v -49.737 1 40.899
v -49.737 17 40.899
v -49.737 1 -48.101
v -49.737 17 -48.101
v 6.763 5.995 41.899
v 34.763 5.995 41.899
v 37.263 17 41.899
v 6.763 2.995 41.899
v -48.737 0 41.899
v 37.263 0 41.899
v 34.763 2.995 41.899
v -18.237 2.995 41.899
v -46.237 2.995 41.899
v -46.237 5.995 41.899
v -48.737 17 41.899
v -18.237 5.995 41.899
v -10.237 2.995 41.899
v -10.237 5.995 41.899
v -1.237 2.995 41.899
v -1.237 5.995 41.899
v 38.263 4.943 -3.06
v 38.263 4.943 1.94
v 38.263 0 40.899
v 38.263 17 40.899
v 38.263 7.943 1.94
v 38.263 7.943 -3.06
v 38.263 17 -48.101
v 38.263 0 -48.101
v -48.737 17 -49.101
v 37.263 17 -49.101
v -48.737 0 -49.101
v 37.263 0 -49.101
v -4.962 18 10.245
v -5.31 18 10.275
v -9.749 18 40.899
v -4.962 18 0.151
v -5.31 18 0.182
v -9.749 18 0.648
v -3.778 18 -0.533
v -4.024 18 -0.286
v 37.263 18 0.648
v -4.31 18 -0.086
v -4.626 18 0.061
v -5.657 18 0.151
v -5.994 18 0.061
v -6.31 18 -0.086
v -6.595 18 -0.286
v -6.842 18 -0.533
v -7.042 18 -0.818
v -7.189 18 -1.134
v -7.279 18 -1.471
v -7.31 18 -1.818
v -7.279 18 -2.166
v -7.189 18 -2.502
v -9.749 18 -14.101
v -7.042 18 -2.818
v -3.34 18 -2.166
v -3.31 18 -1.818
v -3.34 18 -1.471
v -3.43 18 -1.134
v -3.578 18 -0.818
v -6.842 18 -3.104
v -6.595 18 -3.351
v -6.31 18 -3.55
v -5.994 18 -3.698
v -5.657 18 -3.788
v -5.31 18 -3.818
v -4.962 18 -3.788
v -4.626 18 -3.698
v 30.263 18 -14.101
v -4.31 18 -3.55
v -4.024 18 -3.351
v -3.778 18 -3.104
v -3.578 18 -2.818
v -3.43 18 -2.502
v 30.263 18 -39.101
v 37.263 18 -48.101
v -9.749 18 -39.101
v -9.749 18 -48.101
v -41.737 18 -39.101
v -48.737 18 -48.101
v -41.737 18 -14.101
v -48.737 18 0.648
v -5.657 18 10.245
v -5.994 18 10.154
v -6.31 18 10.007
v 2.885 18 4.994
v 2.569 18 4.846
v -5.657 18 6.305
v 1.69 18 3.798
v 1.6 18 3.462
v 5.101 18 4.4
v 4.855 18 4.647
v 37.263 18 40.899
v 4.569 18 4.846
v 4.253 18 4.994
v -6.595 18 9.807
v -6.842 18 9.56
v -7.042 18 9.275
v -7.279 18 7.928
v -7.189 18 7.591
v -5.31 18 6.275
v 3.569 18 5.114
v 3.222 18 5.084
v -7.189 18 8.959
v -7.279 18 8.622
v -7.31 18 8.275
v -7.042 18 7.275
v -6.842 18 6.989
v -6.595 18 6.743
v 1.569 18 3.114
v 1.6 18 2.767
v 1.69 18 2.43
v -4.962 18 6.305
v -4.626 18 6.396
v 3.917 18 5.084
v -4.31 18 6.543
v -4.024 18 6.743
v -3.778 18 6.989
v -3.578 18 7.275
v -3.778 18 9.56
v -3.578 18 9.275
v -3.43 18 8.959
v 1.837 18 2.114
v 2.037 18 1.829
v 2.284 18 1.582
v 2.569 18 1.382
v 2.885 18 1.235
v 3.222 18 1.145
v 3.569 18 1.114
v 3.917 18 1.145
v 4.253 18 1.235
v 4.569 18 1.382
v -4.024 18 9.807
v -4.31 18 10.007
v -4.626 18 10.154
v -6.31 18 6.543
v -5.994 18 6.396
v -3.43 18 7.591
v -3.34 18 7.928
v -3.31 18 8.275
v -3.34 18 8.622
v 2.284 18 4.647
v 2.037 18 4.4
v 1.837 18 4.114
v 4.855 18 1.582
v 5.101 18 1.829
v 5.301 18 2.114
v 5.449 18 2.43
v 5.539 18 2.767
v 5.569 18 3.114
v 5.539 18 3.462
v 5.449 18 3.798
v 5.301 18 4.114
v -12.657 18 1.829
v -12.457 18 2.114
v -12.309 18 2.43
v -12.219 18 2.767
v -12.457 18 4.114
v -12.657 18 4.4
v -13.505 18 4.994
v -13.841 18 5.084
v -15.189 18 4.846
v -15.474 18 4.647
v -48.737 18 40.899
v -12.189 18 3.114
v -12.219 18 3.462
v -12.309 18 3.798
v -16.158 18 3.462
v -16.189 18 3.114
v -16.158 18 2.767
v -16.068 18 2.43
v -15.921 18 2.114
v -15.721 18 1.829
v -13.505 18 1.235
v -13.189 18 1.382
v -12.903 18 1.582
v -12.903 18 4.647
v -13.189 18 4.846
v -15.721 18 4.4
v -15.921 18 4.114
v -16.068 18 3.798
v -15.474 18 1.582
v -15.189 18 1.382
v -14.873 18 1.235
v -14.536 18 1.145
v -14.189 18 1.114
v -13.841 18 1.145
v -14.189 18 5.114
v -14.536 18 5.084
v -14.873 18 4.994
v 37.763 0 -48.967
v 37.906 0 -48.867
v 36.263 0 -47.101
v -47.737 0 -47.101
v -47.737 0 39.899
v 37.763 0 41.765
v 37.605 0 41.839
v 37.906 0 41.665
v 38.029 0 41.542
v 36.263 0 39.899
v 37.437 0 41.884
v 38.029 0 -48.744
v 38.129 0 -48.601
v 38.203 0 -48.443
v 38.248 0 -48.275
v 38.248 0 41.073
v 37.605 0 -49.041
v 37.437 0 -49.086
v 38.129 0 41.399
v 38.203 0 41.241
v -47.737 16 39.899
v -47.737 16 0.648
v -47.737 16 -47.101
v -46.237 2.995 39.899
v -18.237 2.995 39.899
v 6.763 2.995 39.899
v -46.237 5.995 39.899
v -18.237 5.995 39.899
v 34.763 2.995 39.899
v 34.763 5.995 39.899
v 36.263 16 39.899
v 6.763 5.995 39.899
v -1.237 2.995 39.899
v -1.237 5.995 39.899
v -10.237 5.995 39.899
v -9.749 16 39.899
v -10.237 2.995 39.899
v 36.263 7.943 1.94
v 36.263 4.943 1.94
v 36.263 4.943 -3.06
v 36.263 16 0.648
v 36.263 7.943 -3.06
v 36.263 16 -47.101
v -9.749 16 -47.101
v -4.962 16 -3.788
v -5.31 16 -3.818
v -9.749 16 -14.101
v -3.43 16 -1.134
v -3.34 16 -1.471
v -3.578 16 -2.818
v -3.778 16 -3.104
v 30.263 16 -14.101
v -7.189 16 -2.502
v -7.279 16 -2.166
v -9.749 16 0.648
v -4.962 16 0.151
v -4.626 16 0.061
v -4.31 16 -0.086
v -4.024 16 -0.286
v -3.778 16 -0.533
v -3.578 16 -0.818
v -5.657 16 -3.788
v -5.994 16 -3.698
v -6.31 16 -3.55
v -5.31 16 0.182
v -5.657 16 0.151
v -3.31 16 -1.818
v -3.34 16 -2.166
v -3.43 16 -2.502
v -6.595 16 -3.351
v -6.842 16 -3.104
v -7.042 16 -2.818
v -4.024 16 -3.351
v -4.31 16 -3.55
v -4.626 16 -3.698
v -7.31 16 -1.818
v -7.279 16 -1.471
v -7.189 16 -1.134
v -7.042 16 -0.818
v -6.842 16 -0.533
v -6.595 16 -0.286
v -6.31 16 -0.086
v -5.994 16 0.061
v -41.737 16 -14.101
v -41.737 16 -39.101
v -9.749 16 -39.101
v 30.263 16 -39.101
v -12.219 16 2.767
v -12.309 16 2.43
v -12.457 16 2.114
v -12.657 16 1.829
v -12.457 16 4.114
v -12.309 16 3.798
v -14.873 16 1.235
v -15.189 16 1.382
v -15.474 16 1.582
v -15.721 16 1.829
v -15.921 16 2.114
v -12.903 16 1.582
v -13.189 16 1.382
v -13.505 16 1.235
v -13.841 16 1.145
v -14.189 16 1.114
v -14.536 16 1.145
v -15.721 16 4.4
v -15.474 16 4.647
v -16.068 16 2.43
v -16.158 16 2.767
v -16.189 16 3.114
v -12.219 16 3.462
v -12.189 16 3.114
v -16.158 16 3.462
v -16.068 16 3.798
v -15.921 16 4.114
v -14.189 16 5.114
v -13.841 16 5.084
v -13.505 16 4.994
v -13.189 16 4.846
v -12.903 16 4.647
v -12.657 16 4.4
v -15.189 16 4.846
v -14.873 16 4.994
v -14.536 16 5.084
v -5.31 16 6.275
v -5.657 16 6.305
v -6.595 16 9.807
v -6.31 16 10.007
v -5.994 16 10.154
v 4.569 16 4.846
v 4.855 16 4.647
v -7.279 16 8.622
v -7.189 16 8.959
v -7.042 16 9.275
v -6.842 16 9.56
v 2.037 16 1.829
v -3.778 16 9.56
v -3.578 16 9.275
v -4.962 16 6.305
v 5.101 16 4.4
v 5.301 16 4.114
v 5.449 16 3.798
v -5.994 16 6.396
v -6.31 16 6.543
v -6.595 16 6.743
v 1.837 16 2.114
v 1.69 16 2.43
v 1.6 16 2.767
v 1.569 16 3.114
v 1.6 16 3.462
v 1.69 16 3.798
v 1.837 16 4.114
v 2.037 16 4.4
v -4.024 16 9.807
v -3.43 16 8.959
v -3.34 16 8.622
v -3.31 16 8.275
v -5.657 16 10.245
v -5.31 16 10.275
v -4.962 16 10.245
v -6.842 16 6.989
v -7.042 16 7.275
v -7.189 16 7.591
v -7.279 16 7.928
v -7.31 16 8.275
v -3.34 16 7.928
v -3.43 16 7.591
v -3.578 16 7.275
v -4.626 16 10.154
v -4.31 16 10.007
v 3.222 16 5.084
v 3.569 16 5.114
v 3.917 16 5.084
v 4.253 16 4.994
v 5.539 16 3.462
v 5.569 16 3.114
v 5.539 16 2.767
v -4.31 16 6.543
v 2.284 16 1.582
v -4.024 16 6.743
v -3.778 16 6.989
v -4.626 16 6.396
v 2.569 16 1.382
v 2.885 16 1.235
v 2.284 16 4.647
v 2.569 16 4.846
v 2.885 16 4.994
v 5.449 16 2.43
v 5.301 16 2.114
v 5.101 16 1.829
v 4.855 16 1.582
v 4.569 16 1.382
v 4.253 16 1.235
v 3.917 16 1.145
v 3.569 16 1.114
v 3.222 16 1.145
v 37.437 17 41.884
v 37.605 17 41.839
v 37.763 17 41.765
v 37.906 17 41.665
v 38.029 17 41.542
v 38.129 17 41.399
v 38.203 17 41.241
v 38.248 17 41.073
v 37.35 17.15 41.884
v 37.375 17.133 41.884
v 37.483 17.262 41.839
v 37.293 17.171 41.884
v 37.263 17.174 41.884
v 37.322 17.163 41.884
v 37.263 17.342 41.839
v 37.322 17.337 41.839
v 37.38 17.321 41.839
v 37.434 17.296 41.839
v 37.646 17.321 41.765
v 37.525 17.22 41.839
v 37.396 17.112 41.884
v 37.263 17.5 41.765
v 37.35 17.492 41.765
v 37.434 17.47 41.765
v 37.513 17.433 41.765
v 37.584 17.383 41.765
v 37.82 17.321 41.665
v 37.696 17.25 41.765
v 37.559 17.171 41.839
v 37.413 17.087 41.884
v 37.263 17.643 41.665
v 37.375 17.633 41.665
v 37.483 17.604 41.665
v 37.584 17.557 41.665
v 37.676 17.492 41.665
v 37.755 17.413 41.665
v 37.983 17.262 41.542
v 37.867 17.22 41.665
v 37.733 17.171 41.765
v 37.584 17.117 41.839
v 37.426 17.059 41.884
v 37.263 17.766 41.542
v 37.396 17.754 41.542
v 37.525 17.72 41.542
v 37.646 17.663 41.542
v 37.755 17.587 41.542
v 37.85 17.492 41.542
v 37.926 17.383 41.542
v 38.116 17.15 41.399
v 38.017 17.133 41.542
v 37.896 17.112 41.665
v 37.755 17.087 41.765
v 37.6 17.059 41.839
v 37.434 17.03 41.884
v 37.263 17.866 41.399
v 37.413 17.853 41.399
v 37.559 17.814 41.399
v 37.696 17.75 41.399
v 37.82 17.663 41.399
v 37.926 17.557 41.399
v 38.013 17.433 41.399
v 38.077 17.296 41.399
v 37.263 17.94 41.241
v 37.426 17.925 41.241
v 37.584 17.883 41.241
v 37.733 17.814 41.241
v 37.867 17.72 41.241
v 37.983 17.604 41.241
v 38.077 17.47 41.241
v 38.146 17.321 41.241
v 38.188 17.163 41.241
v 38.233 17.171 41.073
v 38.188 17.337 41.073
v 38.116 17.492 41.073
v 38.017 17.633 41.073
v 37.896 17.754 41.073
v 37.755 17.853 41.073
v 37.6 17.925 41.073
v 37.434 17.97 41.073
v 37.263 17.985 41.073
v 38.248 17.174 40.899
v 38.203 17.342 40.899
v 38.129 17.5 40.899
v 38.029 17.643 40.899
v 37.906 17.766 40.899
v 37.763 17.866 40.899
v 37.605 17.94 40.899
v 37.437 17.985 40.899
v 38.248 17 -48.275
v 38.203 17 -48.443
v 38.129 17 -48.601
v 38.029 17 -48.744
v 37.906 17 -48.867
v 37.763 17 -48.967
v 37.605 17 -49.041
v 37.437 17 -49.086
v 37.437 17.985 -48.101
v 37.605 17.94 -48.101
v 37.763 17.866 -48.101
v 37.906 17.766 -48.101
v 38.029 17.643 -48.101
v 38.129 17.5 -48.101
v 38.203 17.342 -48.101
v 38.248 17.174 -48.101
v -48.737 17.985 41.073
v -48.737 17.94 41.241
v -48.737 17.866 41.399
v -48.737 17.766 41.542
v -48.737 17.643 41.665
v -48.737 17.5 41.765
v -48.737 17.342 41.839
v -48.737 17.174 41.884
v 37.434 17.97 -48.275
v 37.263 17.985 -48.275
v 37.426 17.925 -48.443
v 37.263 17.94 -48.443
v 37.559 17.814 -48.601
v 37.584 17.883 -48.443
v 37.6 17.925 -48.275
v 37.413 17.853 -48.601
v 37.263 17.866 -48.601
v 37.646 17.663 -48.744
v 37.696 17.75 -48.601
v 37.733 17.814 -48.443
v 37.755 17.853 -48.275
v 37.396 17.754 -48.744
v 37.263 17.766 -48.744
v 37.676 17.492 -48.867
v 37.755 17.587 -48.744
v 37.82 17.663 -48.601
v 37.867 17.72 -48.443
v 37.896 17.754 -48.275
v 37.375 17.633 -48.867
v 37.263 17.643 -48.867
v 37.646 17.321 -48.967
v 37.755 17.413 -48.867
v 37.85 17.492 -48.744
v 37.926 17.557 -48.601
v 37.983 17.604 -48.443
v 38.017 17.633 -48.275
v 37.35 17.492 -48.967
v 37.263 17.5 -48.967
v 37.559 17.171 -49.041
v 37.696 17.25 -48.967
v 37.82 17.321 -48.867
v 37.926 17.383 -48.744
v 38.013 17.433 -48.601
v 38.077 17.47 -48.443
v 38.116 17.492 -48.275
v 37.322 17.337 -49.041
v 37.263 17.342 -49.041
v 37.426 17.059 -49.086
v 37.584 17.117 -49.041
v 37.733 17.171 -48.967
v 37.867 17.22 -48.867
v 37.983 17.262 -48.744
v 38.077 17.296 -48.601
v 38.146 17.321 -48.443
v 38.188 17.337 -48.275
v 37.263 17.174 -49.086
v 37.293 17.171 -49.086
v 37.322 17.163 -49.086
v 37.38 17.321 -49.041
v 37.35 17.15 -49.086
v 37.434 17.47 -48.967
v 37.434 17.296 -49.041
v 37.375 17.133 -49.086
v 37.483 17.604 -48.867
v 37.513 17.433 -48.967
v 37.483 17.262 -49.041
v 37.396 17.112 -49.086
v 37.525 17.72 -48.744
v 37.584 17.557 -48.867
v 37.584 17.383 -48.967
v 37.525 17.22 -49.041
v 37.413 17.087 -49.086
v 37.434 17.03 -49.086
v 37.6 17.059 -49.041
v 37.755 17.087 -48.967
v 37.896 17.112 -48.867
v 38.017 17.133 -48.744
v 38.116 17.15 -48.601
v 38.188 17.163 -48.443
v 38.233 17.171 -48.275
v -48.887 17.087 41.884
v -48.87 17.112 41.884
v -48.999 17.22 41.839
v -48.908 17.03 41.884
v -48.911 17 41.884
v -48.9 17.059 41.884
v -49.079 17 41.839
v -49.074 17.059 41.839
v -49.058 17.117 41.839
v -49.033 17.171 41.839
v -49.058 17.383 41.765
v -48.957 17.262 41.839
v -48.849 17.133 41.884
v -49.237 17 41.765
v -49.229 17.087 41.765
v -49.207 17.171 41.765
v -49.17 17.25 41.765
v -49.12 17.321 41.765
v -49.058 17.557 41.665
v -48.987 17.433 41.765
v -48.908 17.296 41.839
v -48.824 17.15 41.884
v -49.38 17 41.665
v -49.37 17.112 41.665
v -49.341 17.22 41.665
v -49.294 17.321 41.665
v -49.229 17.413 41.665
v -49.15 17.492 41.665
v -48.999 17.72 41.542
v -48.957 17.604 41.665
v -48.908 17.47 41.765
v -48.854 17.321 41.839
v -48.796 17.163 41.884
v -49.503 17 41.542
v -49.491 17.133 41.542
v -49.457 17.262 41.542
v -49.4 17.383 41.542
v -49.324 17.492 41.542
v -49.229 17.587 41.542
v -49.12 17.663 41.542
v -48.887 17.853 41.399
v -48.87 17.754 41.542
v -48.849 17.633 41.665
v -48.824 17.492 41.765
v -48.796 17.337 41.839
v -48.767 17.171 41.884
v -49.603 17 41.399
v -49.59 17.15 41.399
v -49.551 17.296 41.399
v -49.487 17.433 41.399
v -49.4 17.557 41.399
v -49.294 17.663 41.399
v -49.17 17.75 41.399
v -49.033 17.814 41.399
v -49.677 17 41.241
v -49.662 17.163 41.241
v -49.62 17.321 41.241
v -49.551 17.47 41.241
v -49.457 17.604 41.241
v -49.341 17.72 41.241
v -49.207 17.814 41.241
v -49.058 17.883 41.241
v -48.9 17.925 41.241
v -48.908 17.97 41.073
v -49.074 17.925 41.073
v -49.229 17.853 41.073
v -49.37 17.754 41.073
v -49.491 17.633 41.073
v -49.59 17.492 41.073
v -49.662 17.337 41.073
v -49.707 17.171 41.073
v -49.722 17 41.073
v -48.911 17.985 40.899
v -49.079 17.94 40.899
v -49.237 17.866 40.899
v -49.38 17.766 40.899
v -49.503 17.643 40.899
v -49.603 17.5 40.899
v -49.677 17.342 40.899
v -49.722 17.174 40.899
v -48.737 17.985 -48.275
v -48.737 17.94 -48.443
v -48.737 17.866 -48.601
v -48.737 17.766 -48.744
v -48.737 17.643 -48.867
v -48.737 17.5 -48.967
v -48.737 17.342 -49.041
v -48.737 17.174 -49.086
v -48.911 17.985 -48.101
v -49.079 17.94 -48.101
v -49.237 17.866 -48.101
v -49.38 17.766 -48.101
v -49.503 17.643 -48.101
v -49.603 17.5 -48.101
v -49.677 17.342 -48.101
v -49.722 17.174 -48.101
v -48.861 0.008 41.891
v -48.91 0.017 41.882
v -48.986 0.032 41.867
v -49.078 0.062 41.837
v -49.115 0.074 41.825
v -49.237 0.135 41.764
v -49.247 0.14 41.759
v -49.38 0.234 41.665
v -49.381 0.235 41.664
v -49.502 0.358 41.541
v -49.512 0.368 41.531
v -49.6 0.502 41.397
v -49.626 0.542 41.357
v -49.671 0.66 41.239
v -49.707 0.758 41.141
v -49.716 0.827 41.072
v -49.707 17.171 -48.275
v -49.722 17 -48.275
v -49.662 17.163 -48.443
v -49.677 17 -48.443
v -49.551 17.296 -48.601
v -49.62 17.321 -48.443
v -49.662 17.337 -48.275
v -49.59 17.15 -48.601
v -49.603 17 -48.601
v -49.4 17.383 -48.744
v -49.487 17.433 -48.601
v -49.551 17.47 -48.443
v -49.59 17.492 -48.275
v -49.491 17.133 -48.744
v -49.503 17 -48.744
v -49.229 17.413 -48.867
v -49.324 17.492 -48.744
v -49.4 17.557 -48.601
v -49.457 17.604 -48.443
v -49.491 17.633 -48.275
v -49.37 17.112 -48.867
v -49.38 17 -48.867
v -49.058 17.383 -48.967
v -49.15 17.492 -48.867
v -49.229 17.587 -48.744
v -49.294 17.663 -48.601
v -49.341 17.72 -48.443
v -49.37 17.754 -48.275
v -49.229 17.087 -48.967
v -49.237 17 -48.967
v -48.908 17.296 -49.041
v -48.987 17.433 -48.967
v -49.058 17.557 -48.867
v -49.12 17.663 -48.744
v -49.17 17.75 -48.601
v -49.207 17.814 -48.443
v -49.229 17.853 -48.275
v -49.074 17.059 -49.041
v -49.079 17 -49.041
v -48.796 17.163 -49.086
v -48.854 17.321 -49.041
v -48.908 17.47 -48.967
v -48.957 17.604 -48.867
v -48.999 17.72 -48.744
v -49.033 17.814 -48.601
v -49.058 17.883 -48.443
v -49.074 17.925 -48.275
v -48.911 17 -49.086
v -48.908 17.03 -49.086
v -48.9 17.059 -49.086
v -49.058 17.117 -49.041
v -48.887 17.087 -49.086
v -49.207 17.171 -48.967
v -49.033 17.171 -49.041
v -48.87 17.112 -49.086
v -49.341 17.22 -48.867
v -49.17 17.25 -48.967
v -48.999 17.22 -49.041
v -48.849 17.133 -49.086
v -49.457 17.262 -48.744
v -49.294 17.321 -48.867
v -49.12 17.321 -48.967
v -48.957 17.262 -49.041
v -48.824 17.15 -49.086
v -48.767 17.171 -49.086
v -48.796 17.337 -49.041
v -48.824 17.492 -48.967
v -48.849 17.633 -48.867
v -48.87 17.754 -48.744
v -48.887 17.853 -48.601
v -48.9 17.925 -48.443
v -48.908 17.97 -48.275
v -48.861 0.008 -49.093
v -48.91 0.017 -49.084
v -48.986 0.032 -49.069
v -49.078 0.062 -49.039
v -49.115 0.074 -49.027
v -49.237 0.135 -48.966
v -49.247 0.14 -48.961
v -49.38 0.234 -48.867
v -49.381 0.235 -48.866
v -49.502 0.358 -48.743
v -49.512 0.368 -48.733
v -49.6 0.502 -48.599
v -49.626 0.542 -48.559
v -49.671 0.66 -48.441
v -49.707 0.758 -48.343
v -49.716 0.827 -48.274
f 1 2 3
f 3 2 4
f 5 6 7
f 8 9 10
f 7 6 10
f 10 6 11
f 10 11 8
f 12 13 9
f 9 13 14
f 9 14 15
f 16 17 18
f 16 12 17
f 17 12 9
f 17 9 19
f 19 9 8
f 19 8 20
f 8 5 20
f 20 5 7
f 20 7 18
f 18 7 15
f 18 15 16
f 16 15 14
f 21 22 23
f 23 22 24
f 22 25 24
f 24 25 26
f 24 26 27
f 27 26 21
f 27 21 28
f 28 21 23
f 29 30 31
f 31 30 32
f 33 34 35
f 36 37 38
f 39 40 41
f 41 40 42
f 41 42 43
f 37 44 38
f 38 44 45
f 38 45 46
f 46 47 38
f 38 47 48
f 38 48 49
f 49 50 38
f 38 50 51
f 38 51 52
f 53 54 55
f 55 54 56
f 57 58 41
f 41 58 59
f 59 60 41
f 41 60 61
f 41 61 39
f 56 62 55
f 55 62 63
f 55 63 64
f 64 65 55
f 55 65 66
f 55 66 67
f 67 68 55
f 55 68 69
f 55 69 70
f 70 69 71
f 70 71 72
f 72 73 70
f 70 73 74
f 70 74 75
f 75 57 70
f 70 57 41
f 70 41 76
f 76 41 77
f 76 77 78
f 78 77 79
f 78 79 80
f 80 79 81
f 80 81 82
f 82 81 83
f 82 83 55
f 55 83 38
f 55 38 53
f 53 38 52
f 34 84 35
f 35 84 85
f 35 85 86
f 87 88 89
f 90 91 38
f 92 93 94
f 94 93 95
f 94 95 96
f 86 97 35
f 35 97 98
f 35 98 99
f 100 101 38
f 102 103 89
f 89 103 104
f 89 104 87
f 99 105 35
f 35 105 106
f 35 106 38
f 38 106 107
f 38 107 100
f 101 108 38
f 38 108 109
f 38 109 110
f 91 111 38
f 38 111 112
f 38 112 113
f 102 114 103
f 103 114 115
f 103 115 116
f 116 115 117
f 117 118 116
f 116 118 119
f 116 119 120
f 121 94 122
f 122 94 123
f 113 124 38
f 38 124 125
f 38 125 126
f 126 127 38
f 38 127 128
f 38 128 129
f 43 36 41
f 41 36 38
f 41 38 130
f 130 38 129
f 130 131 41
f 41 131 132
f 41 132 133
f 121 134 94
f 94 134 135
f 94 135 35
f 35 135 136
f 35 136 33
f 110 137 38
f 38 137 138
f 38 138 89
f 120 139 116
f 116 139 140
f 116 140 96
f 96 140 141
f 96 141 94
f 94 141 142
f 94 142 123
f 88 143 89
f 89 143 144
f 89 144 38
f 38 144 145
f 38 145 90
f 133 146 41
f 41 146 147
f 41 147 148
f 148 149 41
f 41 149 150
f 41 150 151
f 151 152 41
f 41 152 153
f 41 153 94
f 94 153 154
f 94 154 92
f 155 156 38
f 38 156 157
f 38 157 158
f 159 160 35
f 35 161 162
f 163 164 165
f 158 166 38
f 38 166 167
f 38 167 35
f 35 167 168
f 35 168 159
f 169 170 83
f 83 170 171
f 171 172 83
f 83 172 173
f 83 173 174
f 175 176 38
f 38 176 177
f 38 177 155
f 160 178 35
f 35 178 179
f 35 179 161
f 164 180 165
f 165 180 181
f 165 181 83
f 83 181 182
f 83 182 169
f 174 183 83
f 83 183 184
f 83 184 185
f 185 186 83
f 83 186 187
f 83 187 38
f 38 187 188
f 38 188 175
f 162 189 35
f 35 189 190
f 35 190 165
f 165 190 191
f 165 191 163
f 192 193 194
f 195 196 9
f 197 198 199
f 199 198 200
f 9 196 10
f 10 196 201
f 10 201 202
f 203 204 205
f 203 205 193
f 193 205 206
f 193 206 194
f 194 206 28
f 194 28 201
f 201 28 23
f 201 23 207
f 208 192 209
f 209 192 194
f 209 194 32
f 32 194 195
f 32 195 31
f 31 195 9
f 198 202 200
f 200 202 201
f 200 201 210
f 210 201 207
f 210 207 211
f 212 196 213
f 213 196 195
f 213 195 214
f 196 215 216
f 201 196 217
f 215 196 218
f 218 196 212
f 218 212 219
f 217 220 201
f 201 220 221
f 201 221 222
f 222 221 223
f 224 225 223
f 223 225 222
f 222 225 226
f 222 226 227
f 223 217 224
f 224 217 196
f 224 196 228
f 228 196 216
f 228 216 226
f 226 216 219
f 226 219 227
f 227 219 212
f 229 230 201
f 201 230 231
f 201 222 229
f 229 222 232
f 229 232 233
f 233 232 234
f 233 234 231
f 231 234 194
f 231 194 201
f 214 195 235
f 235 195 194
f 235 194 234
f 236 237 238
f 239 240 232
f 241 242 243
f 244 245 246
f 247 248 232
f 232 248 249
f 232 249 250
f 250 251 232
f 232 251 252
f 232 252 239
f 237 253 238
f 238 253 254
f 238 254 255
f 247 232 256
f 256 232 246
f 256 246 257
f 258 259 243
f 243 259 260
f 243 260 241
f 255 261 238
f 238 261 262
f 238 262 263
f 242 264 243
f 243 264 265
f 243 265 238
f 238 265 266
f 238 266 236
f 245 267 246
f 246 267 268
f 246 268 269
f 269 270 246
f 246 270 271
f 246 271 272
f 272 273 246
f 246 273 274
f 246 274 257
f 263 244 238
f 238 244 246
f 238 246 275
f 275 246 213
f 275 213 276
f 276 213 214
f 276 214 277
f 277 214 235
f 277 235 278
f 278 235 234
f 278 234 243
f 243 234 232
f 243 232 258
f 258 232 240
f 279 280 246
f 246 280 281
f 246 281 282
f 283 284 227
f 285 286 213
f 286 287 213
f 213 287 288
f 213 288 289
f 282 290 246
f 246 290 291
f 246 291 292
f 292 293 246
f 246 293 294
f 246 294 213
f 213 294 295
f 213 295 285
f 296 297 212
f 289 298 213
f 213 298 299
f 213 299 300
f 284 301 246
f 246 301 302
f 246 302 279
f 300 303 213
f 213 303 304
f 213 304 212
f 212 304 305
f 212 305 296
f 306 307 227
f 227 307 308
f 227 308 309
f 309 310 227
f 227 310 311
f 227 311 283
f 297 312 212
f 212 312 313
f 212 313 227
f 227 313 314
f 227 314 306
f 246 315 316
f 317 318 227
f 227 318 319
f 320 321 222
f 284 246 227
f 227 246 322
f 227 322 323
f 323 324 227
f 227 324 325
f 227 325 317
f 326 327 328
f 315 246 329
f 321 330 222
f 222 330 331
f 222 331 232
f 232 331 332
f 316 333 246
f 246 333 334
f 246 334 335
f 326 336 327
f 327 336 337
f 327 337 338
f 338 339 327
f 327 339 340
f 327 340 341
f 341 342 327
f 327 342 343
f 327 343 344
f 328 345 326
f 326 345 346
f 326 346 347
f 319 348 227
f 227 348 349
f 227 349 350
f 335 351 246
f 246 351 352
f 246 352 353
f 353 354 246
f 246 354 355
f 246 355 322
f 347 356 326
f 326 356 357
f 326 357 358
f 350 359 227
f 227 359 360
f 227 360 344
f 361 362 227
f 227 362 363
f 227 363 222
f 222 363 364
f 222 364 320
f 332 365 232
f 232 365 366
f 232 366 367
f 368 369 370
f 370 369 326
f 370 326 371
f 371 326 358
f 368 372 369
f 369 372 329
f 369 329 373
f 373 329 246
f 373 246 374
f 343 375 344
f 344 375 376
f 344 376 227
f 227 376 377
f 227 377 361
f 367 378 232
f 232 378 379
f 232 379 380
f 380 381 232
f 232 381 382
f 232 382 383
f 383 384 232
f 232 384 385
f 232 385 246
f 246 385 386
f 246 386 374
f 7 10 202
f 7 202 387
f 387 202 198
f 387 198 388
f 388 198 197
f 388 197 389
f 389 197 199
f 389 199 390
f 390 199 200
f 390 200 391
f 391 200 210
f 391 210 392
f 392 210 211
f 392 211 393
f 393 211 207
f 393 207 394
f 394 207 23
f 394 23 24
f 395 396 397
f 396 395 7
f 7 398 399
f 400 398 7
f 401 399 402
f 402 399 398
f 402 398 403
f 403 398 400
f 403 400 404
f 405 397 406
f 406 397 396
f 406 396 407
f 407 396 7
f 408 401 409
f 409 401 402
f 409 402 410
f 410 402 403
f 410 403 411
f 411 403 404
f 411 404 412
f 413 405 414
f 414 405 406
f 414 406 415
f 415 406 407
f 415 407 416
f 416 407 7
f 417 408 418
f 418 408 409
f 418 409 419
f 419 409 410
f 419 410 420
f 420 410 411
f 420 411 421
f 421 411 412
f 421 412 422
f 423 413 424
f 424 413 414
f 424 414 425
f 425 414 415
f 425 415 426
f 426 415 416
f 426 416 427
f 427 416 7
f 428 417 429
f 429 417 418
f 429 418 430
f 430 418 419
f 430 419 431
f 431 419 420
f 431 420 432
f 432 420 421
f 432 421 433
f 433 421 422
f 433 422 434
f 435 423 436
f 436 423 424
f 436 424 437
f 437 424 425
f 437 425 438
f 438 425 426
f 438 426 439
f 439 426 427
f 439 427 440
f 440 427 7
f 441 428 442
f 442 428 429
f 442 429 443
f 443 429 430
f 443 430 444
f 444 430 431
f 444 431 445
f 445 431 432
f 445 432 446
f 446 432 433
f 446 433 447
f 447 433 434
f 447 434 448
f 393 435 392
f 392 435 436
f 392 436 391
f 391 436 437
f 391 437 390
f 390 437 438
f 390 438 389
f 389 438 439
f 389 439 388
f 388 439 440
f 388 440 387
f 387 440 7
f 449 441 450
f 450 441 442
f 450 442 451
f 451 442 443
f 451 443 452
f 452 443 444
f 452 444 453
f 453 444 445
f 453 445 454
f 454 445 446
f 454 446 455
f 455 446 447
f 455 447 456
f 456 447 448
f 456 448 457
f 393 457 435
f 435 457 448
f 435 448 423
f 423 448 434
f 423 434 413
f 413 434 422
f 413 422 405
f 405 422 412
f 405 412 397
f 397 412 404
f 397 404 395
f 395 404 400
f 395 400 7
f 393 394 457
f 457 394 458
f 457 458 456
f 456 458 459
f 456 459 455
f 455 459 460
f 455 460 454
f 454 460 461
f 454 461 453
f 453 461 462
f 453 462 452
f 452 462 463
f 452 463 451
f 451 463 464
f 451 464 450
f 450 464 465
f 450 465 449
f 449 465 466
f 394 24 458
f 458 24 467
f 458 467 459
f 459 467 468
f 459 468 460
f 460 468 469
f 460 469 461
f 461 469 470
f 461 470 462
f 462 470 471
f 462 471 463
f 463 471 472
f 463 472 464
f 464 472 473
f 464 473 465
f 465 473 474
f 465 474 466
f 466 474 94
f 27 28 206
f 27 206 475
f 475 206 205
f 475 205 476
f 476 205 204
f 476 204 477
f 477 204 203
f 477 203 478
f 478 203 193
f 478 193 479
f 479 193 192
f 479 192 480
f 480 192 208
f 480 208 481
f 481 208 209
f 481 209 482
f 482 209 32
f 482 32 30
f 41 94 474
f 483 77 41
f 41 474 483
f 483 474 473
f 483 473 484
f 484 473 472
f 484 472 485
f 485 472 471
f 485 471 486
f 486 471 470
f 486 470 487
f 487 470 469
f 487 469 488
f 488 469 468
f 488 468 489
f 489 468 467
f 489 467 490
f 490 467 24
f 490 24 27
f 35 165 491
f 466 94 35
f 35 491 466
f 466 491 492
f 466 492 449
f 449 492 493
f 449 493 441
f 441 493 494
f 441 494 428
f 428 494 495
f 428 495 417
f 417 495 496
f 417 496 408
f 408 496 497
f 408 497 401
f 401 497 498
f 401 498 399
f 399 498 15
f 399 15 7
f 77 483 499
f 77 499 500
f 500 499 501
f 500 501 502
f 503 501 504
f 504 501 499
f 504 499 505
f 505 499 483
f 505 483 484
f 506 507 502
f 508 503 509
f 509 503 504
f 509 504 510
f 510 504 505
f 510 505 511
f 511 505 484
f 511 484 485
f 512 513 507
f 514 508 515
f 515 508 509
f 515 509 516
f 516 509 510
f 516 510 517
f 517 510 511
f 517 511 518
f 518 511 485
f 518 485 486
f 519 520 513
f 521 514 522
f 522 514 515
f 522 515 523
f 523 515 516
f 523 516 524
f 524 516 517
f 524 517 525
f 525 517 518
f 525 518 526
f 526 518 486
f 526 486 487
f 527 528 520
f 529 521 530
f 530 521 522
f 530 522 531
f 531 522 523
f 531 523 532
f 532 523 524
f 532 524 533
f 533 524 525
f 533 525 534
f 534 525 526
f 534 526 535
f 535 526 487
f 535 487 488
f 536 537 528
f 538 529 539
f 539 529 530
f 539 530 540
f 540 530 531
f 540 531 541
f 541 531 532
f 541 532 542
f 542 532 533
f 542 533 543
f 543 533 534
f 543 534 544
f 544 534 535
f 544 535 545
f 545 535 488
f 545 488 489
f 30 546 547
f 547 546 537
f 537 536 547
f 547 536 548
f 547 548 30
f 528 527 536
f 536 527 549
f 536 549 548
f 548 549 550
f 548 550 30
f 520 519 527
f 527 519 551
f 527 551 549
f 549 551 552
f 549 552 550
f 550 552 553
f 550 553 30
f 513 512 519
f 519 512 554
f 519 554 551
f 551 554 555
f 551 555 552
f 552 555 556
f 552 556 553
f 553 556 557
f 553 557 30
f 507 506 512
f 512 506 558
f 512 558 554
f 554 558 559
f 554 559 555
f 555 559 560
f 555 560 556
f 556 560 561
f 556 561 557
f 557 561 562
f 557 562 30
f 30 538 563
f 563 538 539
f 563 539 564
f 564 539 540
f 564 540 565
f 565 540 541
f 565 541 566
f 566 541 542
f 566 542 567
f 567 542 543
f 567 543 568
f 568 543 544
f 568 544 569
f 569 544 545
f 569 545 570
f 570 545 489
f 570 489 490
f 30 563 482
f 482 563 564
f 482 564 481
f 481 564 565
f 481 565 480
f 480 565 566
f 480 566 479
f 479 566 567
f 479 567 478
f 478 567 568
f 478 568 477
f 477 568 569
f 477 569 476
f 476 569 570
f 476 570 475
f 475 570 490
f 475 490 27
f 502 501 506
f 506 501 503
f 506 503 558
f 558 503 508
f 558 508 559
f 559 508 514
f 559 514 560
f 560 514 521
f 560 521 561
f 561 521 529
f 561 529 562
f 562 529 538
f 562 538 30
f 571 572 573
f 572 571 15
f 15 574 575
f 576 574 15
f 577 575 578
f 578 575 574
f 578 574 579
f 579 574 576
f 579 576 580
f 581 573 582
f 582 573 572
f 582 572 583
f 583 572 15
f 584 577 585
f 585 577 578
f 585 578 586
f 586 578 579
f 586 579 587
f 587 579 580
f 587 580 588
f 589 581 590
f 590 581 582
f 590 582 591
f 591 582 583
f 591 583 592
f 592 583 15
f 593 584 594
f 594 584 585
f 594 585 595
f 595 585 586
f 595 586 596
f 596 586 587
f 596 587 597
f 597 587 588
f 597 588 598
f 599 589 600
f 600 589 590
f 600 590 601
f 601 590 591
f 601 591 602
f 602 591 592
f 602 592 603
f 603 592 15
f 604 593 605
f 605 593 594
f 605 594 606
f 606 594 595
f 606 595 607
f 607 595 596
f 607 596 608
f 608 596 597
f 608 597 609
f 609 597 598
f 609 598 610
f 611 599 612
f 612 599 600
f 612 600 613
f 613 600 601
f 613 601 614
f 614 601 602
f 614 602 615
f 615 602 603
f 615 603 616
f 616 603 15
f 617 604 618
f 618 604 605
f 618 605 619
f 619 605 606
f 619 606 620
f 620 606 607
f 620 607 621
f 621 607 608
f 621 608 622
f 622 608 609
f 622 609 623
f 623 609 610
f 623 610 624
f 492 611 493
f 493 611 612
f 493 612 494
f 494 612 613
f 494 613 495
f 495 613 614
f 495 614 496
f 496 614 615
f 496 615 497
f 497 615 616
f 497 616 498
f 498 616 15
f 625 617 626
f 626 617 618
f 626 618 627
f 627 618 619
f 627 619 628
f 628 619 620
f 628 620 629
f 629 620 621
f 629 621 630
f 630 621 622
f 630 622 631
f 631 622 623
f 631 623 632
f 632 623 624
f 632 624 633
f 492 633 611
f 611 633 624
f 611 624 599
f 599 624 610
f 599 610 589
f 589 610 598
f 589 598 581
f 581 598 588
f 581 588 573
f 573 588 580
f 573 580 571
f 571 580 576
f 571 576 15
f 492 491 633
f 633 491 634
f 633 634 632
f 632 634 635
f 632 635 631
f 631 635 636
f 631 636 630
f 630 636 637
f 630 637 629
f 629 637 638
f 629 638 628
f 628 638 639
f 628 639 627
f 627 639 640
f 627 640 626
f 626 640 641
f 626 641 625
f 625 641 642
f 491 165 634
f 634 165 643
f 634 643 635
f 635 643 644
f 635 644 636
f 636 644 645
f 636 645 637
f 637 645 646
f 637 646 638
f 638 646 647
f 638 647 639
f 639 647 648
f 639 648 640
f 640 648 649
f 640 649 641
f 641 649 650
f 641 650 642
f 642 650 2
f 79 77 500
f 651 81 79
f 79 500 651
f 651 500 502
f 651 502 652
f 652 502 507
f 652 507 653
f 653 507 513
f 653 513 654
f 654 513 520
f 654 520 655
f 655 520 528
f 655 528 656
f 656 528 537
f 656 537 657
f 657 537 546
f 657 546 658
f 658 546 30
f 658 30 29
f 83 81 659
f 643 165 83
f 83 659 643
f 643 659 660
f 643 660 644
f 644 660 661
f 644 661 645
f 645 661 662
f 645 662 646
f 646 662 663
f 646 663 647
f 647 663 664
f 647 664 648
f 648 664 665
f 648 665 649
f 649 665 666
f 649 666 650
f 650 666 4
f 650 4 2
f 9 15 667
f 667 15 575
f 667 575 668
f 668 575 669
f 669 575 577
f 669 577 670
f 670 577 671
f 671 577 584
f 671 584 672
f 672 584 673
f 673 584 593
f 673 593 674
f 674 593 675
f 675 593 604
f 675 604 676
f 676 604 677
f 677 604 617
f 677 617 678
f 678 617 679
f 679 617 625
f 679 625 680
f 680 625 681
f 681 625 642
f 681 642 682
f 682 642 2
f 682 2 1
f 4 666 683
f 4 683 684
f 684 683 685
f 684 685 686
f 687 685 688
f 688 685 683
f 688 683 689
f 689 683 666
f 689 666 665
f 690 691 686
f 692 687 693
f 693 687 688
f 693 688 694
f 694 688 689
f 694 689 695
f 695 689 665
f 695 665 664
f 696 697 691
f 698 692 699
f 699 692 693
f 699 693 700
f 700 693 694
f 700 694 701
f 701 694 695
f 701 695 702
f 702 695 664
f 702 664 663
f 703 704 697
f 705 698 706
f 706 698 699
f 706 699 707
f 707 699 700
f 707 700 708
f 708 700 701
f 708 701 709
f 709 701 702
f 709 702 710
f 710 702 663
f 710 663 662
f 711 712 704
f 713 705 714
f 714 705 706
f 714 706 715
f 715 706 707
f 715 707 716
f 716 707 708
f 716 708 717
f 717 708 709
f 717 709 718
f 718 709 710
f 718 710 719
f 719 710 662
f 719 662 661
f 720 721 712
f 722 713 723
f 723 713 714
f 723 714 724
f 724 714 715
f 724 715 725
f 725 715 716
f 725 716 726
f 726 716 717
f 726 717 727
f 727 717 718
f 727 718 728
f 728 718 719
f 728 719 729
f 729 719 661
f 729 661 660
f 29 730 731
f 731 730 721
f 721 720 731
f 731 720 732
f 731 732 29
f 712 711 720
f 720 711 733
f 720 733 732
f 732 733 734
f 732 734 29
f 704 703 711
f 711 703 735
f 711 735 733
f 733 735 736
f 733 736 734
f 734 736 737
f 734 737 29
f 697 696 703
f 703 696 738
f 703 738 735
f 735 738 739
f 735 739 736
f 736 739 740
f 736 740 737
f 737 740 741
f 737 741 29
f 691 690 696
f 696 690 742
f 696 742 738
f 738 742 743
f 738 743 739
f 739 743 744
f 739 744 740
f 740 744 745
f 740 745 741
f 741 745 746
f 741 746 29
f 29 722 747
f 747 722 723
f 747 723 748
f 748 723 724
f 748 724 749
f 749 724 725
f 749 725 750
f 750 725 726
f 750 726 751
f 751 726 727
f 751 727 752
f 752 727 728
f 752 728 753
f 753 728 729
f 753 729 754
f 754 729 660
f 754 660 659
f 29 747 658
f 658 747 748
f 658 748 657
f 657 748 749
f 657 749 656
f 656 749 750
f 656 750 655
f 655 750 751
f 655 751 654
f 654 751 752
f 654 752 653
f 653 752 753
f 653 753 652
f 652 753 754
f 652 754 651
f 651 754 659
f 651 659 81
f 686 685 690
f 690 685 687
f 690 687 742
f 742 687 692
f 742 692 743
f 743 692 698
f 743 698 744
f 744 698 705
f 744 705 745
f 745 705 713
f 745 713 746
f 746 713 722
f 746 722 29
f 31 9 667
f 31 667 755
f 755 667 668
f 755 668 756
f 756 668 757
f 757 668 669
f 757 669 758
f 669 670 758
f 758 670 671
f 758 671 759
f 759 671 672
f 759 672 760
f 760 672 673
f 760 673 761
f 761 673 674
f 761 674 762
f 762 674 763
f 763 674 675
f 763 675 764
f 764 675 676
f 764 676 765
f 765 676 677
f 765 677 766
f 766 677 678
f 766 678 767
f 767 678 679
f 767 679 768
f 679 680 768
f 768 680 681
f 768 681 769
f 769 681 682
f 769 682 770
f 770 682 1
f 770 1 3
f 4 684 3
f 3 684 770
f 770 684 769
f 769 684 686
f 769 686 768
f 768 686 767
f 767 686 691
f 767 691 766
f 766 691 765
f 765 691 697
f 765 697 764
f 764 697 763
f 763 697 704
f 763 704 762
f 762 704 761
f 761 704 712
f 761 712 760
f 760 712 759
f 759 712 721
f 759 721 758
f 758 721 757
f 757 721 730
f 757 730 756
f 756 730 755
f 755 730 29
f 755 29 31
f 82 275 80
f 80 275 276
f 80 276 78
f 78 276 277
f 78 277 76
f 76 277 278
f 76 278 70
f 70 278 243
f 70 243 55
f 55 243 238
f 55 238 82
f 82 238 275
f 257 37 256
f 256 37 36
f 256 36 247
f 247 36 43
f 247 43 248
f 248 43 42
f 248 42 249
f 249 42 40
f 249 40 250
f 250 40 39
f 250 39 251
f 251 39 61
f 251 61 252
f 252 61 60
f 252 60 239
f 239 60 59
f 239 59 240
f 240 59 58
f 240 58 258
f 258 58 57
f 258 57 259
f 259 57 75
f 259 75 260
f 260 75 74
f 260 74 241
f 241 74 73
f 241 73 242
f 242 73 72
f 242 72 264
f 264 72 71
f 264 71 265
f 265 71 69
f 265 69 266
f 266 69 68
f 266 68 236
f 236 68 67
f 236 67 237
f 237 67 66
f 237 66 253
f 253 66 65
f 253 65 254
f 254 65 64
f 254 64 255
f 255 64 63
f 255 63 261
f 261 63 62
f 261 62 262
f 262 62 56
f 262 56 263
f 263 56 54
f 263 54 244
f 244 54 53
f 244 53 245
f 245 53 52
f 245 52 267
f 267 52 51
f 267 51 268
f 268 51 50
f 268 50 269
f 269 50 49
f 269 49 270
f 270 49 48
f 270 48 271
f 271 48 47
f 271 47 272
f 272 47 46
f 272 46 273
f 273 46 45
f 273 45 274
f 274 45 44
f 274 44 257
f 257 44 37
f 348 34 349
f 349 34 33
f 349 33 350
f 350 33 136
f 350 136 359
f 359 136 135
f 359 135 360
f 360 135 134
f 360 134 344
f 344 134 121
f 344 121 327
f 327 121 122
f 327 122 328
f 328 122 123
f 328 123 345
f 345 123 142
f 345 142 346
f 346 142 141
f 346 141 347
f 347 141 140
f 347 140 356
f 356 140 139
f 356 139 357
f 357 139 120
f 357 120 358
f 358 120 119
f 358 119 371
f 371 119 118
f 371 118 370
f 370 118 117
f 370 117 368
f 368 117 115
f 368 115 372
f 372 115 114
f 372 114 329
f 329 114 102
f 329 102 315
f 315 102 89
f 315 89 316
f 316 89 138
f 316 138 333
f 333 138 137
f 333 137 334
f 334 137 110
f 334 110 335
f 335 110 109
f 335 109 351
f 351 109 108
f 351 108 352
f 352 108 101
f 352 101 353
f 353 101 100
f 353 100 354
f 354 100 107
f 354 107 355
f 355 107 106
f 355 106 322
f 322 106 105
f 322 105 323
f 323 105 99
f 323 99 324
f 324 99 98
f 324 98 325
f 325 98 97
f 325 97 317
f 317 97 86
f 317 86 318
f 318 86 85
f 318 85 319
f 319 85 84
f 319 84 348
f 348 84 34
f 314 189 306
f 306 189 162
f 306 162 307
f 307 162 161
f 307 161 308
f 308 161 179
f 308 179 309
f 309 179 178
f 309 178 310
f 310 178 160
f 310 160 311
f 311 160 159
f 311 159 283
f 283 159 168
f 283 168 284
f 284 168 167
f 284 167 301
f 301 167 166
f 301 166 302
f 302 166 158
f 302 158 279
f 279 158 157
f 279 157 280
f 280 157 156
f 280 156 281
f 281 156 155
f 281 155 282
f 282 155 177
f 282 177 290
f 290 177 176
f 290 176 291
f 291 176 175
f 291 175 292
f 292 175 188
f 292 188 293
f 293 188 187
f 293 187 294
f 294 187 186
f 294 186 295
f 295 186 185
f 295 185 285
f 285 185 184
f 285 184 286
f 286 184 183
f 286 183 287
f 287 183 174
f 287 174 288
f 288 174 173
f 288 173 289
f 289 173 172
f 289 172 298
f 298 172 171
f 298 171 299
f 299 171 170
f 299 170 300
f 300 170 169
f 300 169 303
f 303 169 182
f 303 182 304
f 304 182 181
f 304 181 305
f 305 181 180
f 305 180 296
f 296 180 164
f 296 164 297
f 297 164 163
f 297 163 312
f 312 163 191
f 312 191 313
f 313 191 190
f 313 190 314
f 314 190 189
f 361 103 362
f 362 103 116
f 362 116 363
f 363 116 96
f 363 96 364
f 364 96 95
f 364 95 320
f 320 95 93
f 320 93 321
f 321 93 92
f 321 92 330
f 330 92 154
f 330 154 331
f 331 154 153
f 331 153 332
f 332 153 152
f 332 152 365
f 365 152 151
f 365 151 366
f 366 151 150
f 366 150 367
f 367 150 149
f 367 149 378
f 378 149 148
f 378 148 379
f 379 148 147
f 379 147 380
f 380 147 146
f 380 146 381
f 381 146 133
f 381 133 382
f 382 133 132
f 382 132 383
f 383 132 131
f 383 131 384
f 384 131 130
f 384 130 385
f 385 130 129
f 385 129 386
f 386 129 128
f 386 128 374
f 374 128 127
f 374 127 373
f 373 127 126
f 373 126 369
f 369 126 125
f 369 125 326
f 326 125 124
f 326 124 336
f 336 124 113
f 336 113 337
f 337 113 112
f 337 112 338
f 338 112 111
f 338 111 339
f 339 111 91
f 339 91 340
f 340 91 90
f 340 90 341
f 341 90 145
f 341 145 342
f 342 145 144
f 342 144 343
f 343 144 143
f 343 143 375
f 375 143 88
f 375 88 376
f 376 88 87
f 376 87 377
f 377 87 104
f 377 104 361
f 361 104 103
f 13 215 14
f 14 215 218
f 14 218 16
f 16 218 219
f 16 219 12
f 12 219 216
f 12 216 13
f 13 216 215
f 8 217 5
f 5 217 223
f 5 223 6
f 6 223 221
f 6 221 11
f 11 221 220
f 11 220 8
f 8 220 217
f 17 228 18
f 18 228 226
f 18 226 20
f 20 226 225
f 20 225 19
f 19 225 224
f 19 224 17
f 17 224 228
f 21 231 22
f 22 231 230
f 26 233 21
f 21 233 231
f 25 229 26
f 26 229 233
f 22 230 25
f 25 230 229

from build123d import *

# Parameters (mm, degrees)
SKETCH1_W           = 88
SKETCH1_H           = 91
BOSS_EXTRUDE1_DEPTH = 18
SHELL1_T            = -2
FILLET1_R           = 1
SKETCH2_R           = 2
SKETCH2_W           = 72
SKETCH2_H           = 25
CUT_EXTRUDE1_DEPTH  = 18
CUT_EXTRUDE2_REACH  = 107.256
SKETCH3_W           = 28
SKETCH3_H           = 3
SKETCH3_W_2         = 9
CUT_EXTRUDE3_REACH  = 104.367
SKETCH4_W           = 5
SKETCH4_H           = 3


with BuildPart() as part:
    # Sketch1 → Boss-Extrude1 (new body)
    with BuildSketch(Plane(origin=(0, 0, 0), x_dir=(1, 0, 0), z_dir=(0, 1, 0))):
        with Locations((-5.737068998, 3.601045098)):
            Rectangle(SKETCH1_W, SKETCH1_H)
    extrude(amount=BOSS_EXTRUDE1_DEPTH)

    # Shell1
    shell1_openings = [part.faces().sort_by_distance(p)[0] for p in [
        (-5.737068998, 0, -3.601045098),
    ]]
    offset(amount=SHELL1_T, openings=shell1_openings, kind=Kind.INTERSECTION)

    # Fillet1
    fillet1_edges = [part.edges().sort_by_distance(p)[0] for p in [
        (38.262931002, 18, -3.601045098),
        (-5.737068998, 18, -49.101045098),
        (-49.737068998, 18, -3.601045098),
        (-49.737068998, 0, -3.601045098),
        (-5.737068998, 18, 41.898954902),
        (-49.737068998, 9, -49.101045098),
        (38.262931002, 9, -49.101045098),
        (38.262931002, 9, 41.898954902),
        (-49.737068998, 9, 41.898954902),
    ]]
    fillet(fillet1_edges, radius=FILLET1_R)

    # Sketch2 → Cut-Extrude1 (cut)
    with BuildSketch(Plane(origin=(0, 18, 0), x_dir=(1, 0, 0), z_dir=(0, 1, 0))):
        with Locations(Location((-5.30968118, 1.818409631, 0), (0, 0, 270))):
            Circle(SKETCH2_R)
        with Locations(Location((-5.30968118, -8.274923211, 0), (0, 0, 270))):
            Circle(SKETCH2_R)
        with Locations(Location((-14.188721584, -3.11442221, 0), (0, 0, 270))):
            Circle(SKETCH2_R)
        with Locations(Location((3.569359225, -3.11442221, 0), (0, 0, 270))):
            Circle(SKETCH2_R)
        with Locations((-5.737068998, 26.601045098)):
            Rectangle(SKETCH2_W, SKETCH2_H)
    extrude(amount=-CUT_EXTRUDE1_DEPTH, mode=Mode.SUBTRACT)

    # Sketch3 → Cut-Extrude2 (cut, up to next)
    with BuildSketch(Plane.XY.offset(41.898954902), mode=Mode.PRIVATE) as cut_extrude2_sk1:
        with Locations((-32.237068998, 4.495374911)):
            Rectangle(SKETCH3_W, SKETCH3_H)
    cut_extrude2_tool1 = extrude(cut_extrude2_sk1.sketch, amount=-CUT_EXTRUDE2_REACH, mode=Mode.PRIVATE) & part.part
    # Sketch3 → Cut-Extrude2 (cut, up to next)
    with BuildSketch(Plane.XY.offset(41.898954902), mode=Mode.PRIVATE) as cut_extrude2_sk2:
        with Locations((20.762931002, 4.495374911)):
            Rectangle(SKETCH3_W, SKETCH3_H)
    cut_extrude2_tool2 = extrude(cut_extrude2_sk2.sketch, amount=-CUT_EXTRUDE2_REACH, mode=Mode.PRIVATE) & part.part
    # Sketch3 → Cut-Extrude2 (cut, up to next)
    with BuildSketch(Plane.XY.offset(41.898954902), mode=Mode.PRIVATE) as cut_extrude2_sk3:
        with Locations((-5.737068998, 4.495374911)):
            Rectangle(SKETCH3_W_2, SKETCH3_H)
    cut_extrude2_tool3 = extrude(cut_extrude2_sk3.sketch, amount=-CUT_EXTRUDE2_REACH, mode=Mode.PRIVATE) & part.part
    add(cut_extrude2_tool1.solids().sort_by_distance((-32.237069, 4.495375, 41.898955))[0], mode=Mode.SUBTRACT)
    add(cut_extrude2_tool2.solids().sort_by_distance((20.762931, 4.495375, 41.898955))[0], mode=Mode.SUBTRACT)
    add(cut_extrude2_tool3.solids().sort_by_distance((-5.737069, 4.495375, 41.898955))[0], mode=Mode.SUBTRACT)

    # Sketch4 → Cut-Extrude3 (cut, up to next)
    with BuildSketch(Plane(origin=(38.262931002, 0, 0), x_dir=(0, 0, -1), z_dir=(1, 0, 0)), mode=Mode.PRIVATE) as cut_extrude3_sk1:
        with Locations((0.5597151, 6.442773973)):
            Rectangle(SKETCH4_W, SKETCH4_H)
    cut_extrude3_tool1 = extrude(cut_extrude3_sk1.sketch, amount=-CUT_EXTRUDE3_REACH, mode=Mode.PRIVATE) & part.part
    add(cut_extrude3_tool1.solids().sort_by_distance((38.262931, 6.442774, -0.559715))[0], mode=Mode.SUBTRACT)


solid = part.part
